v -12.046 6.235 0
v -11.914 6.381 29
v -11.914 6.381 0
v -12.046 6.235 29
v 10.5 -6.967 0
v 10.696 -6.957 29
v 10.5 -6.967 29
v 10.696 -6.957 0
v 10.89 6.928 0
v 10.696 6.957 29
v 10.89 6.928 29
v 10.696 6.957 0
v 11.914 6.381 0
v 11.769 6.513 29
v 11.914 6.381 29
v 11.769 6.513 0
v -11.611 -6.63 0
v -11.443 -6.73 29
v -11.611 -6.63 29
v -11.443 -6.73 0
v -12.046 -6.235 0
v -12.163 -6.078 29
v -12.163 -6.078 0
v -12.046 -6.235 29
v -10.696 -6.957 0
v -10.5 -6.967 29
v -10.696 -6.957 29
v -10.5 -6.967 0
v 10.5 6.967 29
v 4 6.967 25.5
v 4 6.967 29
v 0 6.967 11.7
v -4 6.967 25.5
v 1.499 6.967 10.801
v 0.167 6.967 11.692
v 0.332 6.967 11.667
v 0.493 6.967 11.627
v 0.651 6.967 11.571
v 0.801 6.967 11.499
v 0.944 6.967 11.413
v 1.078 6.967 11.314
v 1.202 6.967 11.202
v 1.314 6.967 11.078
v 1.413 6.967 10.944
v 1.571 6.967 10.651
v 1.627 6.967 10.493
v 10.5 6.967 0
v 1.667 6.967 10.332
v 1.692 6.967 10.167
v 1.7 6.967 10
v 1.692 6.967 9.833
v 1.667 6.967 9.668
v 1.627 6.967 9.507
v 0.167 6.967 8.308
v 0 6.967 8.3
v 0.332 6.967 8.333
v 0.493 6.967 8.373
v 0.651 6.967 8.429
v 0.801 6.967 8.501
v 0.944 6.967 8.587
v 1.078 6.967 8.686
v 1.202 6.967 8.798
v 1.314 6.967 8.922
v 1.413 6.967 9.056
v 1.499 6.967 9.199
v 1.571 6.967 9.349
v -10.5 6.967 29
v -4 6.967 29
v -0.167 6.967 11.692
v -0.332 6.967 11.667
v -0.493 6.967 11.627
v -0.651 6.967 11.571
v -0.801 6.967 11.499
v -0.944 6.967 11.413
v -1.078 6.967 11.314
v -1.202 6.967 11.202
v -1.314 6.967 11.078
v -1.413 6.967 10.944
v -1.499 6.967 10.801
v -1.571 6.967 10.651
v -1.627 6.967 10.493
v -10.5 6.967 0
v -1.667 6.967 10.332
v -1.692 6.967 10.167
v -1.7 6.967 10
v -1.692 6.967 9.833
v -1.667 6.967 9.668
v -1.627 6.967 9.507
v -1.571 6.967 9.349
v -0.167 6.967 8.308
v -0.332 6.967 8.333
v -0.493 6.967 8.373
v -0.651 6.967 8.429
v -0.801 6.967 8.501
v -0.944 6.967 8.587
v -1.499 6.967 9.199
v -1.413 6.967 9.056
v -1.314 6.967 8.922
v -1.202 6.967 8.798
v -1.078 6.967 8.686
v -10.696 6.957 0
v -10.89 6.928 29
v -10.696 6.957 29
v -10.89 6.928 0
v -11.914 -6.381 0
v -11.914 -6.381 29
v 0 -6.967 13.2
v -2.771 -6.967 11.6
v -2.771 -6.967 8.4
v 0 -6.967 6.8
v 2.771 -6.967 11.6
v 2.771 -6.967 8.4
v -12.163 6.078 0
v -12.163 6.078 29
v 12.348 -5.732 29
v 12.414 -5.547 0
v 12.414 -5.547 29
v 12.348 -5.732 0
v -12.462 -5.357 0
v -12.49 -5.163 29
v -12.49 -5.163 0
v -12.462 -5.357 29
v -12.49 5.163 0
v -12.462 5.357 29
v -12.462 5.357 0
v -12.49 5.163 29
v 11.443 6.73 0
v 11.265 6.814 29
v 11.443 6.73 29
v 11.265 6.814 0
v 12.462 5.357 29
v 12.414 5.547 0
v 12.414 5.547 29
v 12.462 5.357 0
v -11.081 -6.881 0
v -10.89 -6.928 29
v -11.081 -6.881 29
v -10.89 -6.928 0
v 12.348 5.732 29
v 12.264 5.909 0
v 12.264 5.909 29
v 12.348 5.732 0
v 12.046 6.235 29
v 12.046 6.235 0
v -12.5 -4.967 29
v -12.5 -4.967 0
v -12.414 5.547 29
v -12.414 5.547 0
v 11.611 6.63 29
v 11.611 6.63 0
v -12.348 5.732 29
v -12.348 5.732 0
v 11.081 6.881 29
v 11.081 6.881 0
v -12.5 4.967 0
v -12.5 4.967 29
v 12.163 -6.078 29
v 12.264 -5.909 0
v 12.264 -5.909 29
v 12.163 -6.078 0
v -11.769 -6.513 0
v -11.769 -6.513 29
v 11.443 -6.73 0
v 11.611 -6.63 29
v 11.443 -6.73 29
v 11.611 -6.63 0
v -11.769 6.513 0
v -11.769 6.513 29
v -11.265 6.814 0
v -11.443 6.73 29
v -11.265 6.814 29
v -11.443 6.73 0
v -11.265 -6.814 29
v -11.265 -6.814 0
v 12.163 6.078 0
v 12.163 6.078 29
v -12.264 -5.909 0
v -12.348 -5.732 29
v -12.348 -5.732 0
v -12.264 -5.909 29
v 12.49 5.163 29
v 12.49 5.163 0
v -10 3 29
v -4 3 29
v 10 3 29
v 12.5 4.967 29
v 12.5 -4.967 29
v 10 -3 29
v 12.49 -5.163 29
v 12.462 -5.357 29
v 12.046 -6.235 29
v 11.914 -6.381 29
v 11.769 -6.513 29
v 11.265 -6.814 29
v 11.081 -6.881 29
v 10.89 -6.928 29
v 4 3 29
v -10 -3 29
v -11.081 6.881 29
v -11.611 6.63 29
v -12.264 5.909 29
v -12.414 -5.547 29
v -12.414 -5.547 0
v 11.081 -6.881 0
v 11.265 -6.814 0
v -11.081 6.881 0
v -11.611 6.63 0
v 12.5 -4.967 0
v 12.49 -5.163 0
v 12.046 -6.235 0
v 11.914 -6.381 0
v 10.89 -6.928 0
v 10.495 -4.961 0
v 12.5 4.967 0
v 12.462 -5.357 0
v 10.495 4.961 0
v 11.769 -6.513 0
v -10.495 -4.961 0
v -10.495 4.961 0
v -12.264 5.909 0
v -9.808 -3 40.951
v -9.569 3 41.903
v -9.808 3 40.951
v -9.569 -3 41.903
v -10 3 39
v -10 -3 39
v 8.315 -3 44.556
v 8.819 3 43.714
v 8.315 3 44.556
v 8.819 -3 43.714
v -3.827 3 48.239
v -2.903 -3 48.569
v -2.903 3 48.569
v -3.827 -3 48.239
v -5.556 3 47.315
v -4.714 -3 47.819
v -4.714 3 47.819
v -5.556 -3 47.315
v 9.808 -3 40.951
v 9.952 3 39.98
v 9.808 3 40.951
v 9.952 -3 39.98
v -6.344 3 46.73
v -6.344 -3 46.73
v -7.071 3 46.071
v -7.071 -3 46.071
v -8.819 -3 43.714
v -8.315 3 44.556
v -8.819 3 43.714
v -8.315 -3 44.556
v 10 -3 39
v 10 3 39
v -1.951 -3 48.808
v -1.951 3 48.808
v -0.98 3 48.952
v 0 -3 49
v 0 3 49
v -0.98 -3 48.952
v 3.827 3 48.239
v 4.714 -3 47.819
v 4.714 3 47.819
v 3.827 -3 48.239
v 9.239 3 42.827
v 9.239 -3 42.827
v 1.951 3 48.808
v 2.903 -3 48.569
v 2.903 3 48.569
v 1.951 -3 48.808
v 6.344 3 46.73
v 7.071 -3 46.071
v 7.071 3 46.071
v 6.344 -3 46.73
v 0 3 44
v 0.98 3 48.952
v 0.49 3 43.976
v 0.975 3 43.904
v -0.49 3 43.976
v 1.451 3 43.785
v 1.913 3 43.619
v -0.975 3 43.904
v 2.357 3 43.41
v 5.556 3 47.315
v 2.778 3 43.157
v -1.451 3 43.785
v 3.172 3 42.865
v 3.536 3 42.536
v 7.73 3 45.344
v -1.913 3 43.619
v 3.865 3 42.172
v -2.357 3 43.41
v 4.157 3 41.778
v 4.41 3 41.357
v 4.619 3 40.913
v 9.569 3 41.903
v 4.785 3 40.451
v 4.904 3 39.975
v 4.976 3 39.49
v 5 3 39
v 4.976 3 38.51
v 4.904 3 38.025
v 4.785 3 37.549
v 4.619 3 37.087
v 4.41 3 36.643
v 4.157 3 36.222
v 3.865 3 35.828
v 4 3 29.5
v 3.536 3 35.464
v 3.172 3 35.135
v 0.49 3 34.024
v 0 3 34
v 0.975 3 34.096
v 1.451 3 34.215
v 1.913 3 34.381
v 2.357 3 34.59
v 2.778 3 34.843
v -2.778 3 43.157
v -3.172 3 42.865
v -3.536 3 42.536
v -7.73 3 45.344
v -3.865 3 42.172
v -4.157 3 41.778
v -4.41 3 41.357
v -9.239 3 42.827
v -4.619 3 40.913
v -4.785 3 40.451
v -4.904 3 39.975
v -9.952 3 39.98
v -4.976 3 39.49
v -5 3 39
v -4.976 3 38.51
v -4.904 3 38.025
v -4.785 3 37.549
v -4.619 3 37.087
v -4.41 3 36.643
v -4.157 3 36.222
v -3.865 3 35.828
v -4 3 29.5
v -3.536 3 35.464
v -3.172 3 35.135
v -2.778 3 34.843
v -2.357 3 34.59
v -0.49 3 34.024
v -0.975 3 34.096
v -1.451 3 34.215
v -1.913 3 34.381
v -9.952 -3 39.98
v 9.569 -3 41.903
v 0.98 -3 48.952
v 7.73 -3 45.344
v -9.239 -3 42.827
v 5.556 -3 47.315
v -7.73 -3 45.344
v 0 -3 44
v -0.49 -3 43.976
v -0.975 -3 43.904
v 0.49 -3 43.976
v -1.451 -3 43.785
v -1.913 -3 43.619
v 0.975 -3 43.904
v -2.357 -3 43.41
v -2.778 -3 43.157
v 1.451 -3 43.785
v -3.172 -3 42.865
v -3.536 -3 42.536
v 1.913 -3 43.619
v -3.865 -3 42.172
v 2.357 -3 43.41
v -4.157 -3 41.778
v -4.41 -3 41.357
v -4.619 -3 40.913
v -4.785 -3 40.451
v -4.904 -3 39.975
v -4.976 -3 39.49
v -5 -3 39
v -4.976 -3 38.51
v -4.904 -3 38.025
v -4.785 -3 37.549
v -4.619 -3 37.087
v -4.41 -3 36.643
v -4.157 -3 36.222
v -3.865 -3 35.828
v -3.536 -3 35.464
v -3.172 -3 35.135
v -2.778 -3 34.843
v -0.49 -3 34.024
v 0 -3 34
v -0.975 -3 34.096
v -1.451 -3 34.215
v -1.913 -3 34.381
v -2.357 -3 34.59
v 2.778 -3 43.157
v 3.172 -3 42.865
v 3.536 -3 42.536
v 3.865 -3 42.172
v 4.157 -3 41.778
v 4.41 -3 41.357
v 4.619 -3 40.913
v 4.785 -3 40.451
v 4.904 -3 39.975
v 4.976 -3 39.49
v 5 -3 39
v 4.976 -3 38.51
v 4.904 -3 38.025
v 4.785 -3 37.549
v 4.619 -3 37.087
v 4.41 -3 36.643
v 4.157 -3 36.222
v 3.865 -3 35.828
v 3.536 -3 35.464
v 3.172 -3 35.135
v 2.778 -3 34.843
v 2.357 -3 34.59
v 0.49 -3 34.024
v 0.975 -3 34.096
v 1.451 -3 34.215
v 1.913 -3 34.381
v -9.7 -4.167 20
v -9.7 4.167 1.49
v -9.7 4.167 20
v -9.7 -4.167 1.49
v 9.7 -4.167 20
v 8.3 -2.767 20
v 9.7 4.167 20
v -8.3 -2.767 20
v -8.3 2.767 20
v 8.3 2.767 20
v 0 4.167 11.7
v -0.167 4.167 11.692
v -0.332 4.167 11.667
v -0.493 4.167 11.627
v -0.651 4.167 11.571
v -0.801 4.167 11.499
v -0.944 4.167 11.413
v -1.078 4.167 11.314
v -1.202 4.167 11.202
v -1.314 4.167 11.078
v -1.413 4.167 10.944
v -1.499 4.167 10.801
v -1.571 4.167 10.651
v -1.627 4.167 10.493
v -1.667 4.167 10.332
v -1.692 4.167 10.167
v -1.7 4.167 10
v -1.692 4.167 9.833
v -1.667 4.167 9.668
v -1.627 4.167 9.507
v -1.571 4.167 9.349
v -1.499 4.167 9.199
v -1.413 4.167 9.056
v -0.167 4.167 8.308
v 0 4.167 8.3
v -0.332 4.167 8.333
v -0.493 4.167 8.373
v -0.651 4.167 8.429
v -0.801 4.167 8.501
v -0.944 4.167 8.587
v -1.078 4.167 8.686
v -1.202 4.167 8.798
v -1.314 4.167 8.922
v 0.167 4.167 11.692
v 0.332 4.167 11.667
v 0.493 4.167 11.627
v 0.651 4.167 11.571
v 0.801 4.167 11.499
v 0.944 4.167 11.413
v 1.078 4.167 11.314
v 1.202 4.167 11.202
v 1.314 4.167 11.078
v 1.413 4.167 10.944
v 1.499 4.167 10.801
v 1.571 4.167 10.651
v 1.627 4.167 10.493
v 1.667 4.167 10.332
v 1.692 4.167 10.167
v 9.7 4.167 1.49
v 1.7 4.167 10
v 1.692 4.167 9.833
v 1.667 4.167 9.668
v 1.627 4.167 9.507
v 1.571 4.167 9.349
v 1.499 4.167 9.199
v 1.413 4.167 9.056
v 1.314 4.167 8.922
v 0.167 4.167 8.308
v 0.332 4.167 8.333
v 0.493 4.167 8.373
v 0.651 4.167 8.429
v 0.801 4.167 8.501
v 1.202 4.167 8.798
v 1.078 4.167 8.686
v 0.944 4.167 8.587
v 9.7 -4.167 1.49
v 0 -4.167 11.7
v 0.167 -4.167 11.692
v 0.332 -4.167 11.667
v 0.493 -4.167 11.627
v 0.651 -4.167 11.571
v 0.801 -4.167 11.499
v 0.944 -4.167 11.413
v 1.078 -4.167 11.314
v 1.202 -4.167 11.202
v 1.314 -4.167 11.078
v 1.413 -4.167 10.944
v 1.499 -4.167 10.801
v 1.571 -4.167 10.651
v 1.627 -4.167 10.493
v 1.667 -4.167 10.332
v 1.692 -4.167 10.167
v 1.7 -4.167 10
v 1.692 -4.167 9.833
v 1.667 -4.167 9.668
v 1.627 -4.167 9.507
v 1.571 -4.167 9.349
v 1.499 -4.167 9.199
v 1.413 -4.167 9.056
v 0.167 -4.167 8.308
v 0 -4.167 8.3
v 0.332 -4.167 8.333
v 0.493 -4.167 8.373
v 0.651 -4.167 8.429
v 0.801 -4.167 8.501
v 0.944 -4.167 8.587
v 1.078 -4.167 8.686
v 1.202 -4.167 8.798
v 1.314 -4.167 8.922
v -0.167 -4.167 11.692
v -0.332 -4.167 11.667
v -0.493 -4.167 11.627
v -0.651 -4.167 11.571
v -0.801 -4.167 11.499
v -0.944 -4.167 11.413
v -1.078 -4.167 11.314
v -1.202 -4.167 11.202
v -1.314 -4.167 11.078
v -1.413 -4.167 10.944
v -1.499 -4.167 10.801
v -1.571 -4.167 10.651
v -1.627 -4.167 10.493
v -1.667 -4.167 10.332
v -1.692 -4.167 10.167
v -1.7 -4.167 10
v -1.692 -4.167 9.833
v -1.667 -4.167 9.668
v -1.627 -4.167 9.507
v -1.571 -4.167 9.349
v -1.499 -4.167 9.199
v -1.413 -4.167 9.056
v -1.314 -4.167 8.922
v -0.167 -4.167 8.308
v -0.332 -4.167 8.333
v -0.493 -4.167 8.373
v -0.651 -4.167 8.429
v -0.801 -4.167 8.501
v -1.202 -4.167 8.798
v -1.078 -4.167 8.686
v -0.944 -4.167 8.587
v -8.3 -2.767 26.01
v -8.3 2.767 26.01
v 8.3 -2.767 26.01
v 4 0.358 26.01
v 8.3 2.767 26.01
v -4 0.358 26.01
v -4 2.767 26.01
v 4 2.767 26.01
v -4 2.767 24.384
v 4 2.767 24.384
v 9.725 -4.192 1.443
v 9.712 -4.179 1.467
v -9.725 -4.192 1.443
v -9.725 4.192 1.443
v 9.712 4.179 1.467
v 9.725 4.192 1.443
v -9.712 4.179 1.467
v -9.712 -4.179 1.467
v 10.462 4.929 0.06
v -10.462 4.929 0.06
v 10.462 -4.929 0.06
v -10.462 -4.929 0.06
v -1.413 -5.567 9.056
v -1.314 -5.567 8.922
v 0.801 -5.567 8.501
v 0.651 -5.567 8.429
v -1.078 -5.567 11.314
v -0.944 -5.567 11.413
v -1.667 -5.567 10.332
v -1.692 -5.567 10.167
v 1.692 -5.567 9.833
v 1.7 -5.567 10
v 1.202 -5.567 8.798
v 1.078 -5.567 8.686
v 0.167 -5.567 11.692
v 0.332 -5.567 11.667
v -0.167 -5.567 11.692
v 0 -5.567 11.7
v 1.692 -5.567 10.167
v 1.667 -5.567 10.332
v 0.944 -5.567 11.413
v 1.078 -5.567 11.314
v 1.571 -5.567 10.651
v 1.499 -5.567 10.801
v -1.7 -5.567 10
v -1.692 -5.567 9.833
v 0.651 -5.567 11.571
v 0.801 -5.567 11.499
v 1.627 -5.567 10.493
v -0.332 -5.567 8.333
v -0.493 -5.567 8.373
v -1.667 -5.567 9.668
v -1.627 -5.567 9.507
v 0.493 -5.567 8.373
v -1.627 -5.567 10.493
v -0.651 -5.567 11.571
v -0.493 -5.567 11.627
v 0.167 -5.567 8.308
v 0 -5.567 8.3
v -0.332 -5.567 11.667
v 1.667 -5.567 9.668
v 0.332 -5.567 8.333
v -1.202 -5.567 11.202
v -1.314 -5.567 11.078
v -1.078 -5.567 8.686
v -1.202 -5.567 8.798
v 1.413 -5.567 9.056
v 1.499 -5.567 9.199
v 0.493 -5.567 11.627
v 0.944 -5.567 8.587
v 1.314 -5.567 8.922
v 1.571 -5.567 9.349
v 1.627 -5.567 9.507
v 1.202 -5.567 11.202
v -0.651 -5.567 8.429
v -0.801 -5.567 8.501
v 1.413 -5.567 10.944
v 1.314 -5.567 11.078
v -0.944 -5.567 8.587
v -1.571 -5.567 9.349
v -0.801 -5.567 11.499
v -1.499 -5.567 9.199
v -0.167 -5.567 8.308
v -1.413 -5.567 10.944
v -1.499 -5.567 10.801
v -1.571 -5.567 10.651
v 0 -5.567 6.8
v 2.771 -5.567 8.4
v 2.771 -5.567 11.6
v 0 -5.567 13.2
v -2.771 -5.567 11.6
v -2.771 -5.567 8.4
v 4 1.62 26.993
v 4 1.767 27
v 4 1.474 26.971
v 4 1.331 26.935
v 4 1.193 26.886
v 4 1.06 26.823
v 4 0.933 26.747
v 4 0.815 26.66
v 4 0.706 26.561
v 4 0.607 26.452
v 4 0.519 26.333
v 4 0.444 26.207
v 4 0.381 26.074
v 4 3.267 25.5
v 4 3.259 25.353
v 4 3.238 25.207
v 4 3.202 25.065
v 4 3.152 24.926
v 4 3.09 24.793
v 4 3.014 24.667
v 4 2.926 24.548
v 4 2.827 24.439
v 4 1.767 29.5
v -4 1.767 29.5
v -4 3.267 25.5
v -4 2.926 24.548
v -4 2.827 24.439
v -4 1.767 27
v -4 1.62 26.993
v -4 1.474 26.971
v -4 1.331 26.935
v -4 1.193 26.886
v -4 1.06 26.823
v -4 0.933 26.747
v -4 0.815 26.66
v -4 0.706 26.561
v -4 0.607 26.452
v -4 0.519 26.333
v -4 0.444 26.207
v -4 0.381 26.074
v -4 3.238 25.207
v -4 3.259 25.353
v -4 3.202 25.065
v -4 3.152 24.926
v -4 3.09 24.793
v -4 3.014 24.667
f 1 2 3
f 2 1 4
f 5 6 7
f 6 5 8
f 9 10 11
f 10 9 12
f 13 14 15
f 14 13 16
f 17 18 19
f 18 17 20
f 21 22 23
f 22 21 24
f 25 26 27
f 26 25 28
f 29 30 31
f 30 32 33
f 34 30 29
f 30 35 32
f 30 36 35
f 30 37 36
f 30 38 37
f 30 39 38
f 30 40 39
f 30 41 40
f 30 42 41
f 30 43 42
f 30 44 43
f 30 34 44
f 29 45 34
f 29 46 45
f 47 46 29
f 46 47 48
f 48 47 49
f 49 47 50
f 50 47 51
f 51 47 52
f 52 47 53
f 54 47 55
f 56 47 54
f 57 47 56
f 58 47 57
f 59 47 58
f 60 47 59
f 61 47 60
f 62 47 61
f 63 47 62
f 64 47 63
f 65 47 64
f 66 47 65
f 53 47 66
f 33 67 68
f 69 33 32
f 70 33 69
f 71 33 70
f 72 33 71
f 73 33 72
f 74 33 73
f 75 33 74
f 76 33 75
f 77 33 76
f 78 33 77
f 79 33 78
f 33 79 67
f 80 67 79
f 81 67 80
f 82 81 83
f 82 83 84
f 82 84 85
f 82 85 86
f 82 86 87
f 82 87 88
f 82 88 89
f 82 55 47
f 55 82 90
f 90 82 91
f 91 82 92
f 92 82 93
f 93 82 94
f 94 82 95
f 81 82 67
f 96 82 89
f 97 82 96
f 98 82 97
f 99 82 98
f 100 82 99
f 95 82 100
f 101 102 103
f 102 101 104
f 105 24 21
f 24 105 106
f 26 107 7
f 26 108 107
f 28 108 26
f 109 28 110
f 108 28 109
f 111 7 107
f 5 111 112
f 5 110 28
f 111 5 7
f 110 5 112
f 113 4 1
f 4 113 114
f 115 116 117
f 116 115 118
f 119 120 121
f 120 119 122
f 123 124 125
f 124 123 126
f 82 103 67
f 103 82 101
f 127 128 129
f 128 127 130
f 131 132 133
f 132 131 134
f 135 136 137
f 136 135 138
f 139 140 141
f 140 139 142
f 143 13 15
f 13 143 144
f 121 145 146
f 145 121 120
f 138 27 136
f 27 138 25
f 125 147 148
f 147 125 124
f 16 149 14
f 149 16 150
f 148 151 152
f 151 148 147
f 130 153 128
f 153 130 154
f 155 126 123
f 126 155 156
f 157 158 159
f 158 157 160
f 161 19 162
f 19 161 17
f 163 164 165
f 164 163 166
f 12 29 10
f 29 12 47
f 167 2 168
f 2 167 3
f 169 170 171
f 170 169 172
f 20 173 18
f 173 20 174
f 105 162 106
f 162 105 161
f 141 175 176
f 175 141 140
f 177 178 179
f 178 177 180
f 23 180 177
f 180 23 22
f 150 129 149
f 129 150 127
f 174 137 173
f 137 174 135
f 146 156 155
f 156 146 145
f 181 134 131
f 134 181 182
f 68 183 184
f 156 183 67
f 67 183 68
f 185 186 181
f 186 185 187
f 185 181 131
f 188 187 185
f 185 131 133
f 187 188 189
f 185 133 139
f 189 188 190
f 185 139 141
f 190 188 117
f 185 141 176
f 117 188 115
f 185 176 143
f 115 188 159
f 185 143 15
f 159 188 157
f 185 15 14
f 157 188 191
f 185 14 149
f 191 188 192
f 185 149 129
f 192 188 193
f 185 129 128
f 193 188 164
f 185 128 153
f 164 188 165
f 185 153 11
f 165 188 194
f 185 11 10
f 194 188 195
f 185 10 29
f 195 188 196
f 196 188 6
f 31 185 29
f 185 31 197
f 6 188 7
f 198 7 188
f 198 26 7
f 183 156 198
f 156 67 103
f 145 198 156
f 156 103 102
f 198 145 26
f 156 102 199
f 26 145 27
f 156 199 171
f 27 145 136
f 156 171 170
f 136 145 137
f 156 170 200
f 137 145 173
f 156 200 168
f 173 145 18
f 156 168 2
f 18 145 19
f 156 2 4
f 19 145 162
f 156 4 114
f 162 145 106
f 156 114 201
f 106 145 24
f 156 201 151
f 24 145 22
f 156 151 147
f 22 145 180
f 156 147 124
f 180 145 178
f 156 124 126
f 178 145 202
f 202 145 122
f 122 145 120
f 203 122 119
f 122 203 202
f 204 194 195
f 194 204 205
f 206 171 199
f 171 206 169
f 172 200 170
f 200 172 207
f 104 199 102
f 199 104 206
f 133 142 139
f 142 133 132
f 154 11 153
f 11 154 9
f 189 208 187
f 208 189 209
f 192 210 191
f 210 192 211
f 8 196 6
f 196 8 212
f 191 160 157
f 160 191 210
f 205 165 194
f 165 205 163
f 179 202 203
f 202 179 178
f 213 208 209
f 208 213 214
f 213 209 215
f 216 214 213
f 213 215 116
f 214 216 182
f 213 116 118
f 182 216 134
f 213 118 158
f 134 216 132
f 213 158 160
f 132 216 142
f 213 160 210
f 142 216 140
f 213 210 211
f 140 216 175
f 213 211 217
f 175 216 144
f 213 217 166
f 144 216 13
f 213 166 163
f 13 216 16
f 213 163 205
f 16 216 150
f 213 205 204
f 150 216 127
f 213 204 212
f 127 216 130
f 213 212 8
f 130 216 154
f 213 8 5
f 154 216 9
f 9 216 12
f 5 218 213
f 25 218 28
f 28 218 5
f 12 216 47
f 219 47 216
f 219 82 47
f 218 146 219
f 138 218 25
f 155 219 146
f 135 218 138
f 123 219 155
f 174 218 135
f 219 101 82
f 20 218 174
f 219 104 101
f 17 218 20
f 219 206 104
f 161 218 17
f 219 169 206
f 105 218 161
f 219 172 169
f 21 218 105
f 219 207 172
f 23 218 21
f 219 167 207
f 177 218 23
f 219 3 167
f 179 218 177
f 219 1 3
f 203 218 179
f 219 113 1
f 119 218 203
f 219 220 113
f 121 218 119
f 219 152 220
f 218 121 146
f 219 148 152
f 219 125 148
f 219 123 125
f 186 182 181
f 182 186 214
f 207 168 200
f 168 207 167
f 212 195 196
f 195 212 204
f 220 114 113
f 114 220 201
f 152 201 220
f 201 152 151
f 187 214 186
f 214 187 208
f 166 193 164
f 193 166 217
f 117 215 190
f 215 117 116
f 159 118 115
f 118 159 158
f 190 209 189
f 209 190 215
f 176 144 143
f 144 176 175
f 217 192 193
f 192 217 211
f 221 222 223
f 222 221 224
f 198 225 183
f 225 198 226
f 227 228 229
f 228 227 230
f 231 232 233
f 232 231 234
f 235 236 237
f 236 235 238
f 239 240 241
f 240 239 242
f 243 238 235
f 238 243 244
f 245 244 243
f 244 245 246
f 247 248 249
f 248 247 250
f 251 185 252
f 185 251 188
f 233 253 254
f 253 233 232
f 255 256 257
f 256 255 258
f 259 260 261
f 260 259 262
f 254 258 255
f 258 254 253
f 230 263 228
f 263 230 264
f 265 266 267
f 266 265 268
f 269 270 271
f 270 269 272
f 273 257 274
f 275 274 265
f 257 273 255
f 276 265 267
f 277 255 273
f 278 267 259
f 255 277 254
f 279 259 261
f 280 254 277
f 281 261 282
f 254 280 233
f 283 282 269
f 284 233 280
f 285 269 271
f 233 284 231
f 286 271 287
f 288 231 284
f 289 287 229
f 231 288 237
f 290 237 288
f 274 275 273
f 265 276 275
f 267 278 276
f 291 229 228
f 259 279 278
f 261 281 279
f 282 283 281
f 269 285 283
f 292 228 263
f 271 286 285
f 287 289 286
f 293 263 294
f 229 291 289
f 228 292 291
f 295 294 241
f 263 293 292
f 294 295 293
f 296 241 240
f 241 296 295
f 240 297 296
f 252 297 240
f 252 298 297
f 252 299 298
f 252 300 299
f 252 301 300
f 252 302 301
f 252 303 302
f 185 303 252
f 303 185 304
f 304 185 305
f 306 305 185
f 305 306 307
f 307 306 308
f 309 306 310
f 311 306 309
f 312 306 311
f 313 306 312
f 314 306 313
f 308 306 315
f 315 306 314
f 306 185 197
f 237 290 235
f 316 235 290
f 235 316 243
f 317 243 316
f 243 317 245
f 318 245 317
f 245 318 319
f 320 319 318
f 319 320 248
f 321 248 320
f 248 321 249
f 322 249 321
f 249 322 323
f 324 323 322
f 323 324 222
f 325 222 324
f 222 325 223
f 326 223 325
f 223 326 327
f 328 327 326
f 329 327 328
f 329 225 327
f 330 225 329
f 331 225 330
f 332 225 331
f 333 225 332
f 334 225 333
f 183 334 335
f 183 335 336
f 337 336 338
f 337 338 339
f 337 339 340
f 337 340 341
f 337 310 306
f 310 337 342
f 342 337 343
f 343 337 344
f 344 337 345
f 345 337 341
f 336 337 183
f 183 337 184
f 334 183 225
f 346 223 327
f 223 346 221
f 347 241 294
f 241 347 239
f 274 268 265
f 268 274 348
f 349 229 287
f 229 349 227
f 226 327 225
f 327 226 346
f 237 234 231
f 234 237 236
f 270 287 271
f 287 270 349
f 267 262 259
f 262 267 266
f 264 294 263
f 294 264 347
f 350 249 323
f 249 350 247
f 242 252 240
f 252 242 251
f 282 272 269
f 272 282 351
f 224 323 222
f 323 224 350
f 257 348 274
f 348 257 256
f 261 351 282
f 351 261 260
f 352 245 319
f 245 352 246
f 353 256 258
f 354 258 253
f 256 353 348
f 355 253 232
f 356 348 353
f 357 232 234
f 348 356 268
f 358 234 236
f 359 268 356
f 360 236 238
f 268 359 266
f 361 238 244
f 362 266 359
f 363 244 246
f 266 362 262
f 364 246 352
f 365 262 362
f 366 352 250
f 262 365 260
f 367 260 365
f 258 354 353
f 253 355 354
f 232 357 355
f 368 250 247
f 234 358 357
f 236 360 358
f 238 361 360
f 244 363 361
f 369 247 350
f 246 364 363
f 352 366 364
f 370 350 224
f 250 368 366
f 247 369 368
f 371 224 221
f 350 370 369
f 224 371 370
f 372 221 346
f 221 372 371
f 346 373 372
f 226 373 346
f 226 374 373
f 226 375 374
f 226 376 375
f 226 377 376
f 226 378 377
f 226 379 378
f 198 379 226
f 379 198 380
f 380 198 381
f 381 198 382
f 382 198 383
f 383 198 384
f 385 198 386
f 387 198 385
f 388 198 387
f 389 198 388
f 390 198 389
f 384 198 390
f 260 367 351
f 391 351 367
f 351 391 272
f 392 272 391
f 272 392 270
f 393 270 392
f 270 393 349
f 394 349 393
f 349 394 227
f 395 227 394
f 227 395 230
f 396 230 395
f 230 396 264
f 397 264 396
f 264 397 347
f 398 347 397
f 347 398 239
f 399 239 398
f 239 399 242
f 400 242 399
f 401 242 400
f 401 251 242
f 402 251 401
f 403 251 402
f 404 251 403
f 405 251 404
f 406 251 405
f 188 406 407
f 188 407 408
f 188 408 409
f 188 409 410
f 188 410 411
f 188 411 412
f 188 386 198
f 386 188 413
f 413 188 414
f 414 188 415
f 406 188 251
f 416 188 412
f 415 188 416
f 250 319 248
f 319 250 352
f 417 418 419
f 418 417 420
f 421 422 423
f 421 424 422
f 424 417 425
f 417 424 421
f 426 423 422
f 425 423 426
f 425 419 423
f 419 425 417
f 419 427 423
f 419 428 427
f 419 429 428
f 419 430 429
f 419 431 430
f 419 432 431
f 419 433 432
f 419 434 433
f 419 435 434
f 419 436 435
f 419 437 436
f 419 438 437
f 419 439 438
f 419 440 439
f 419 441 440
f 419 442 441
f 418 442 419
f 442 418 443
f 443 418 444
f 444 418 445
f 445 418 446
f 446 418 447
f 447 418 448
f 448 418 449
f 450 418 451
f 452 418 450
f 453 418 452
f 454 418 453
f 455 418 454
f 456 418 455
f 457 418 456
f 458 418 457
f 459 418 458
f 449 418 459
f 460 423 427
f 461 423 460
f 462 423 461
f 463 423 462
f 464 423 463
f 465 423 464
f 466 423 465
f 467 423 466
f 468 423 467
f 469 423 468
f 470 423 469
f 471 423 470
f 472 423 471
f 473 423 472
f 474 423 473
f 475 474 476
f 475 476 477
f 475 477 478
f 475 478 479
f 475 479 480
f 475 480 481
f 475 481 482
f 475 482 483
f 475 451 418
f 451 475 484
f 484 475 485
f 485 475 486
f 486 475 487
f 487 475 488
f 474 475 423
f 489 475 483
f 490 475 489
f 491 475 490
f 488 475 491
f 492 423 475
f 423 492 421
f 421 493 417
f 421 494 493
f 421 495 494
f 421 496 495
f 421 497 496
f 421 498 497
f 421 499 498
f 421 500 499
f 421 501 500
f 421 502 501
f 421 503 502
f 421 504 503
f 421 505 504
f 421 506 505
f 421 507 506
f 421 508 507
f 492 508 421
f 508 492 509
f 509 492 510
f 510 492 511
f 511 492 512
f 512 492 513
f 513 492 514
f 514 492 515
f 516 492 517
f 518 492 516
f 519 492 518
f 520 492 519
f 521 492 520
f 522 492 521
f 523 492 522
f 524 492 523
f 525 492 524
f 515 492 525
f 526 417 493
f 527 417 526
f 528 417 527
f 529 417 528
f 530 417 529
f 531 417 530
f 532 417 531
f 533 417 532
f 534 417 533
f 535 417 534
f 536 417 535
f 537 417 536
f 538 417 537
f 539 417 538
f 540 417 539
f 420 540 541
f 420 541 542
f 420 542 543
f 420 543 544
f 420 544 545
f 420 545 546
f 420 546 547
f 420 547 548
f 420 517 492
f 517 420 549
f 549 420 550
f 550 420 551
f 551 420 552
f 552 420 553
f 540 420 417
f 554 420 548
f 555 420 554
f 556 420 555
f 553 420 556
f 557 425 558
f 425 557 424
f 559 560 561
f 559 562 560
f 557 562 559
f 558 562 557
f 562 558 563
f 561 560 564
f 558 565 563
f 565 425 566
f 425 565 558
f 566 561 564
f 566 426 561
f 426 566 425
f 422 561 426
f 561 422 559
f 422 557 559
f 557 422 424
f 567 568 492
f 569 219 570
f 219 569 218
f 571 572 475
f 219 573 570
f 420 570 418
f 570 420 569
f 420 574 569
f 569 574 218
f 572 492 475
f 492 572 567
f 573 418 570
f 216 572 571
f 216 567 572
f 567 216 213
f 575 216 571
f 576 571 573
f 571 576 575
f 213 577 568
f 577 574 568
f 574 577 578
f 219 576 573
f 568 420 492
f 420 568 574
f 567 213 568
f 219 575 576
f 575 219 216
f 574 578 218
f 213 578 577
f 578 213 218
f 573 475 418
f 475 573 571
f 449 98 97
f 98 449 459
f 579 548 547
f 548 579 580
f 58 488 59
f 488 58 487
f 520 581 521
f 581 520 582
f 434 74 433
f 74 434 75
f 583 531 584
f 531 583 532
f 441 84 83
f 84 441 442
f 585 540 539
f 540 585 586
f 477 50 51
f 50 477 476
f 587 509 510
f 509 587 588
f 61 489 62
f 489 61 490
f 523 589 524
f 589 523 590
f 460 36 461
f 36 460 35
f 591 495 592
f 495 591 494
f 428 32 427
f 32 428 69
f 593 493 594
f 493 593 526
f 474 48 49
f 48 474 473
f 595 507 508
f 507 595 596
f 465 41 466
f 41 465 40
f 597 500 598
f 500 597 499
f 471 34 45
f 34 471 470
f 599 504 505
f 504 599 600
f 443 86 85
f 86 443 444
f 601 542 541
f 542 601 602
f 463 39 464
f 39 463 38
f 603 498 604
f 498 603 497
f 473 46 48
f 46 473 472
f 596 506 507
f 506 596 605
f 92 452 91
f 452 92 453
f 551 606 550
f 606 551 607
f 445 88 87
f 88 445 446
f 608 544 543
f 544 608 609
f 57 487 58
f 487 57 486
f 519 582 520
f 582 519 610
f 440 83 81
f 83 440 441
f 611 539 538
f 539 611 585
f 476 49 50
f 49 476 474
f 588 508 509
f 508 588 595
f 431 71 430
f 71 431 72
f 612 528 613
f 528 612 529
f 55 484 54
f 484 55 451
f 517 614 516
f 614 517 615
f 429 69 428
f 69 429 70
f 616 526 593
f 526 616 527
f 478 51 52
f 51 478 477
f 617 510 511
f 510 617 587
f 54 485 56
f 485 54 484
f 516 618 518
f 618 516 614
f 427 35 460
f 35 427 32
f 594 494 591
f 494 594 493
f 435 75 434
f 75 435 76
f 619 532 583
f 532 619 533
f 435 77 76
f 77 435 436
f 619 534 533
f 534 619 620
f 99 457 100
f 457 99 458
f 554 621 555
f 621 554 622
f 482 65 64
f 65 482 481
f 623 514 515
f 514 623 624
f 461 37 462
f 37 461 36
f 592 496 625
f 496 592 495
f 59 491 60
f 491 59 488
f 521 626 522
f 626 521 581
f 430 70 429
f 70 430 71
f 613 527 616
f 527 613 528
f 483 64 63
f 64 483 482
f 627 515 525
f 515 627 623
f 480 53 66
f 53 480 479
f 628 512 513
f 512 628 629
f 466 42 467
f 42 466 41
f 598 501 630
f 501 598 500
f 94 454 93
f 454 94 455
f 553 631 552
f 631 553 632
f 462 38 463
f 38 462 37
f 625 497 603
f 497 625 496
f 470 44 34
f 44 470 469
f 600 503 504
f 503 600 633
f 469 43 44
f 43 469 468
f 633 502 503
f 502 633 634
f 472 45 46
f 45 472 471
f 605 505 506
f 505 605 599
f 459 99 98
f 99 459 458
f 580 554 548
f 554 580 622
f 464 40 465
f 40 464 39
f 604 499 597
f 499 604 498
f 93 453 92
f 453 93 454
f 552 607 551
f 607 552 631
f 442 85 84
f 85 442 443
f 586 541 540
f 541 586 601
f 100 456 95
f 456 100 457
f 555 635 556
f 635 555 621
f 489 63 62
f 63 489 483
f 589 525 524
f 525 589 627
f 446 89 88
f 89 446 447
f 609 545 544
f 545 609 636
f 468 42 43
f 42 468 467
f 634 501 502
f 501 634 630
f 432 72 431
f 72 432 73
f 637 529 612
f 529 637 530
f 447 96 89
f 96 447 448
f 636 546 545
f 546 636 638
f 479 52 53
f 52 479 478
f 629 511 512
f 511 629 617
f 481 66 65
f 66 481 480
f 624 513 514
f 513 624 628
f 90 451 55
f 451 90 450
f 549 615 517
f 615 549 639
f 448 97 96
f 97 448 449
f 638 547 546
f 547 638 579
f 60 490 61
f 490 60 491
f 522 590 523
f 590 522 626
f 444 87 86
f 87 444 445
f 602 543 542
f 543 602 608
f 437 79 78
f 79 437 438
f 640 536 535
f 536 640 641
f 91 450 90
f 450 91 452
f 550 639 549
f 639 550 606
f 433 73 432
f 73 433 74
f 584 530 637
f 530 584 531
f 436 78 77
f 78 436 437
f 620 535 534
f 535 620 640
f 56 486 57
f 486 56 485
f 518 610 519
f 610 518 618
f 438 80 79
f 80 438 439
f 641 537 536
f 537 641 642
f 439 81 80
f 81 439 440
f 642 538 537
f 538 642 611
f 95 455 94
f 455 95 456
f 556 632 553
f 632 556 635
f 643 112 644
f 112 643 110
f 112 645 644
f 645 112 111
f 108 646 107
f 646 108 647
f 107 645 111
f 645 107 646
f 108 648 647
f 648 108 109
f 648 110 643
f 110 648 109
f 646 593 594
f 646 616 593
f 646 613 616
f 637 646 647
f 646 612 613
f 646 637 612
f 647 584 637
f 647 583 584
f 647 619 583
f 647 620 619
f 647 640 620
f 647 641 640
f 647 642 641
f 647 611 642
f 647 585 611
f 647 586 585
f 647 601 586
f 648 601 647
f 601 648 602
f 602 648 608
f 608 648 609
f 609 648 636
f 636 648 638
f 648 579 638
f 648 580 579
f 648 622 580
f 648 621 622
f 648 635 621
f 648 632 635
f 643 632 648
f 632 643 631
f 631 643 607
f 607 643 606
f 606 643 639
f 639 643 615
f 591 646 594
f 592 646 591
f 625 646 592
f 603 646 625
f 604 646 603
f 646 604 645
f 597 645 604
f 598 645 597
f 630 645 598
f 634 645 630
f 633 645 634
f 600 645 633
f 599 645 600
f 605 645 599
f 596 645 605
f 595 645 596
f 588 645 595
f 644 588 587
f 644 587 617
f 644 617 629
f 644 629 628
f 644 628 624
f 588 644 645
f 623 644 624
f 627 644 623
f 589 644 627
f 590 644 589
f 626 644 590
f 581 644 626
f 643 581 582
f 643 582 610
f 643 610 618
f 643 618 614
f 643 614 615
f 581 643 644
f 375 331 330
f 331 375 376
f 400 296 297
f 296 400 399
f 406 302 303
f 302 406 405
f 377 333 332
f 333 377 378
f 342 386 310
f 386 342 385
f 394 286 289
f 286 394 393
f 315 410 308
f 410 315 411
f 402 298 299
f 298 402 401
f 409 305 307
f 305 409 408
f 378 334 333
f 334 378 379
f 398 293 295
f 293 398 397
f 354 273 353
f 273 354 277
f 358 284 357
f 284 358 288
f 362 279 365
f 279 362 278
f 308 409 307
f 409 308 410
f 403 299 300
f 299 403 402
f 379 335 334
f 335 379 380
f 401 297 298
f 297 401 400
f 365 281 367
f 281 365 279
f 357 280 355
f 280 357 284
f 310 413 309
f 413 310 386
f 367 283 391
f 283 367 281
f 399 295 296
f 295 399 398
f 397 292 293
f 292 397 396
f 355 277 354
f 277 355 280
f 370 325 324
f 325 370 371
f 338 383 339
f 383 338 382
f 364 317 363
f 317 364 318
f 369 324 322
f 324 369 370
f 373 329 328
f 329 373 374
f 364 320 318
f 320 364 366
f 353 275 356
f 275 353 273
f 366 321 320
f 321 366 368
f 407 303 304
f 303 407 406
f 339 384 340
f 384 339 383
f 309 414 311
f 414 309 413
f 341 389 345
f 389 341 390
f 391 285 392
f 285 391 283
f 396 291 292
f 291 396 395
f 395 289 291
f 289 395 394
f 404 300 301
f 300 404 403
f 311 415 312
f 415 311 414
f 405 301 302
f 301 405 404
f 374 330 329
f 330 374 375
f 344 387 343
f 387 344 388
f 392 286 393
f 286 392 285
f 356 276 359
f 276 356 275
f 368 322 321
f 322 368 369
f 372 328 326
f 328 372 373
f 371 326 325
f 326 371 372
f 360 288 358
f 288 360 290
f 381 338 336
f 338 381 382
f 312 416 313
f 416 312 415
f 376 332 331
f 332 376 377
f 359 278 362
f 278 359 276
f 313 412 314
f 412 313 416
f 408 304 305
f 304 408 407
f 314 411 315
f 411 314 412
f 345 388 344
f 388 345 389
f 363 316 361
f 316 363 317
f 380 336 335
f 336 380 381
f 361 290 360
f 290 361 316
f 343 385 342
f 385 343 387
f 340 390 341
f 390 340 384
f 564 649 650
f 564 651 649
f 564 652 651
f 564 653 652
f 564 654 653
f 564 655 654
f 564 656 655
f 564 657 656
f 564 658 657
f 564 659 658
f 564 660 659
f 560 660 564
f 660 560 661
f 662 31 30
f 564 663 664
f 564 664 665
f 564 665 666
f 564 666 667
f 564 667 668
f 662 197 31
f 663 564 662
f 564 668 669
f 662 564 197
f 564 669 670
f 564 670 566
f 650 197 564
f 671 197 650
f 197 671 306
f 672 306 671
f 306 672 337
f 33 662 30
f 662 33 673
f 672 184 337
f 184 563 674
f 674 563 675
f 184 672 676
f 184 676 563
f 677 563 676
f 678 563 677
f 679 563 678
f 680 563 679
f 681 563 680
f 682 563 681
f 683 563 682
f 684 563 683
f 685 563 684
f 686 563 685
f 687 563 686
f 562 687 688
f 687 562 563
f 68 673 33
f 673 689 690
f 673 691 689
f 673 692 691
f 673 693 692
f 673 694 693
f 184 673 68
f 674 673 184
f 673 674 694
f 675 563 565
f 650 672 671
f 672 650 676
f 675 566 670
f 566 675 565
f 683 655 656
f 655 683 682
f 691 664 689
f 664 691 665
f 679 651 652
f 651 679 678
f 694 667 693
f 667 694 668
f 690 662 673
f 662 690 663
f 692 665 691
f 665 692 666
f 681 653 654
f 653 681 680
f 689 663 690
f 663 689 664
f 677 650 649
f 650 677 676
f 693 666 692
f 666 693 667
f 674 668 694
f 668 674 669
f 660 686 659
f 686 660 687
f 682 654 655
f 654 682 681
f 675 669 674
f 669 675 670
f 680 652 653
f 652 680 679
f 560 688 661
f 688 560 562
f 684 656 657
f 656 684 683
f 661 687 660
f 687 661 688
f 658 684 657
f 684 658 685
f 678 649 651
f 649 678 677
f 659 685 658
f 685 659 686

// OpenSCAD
// ==================================================
// Závěsná koncovka pro LED profil T-LED N14 — v2
// — profil visí svisle za jeden (horní) konec
// Vnější průřez N14 ~17.4 x 8 mm — PŘEMĚŘ ŠUPLEROU!
//
// ZMĚNY proti v1:
//  1) ZARÁŽKA (stopper) — profil nedojede až ke stropu.
//     Nad koncem profilu je teď kabelová KOMORA (mezera),
//     kde se kabel v klidu ohne. Hrana profilu už kabel
//     neskřípne.
//  2) VĚTŠÍ průchodka kabelu — stejná pozice jako ve v1
//     (skrz strop nahoře, otevřená do boku Y+), jen širší.
//
// Montáž: zasunout konec profilu do kapsy AŽ NA DORAZ,
// skrz boční díry vyvrtat 3 mm díru do hliníku a
// prostrčit šroub M3 s matkou (nese váhu napřímo).
// ==================================================

/* [Profil] */
profile_w = 17.4;    // šířka profilu (vnější)
profile_h = 8.0;     // výška/hloubka profilu (vnější)
clearance = 1;     // vůle na zasunutí

/* [Koncovka] */
insert_depth = 20;   // jak hluboko profil zajede (plná drážka) = po doraz
wall         = 2.8;  // tloušťka stěn kolem profilu
top_t        = 3.0;  // tloušťka stropu nad komorou

/* [Zarážka + kabelová komora] */
stop_ledge      = 1.4;  // přesah osazení dovnitř na každé straně (zastaví hliník)
cable_chamber_h = 6;    // mezera nad koncem profilu (odsadí hranu profilu od ohybu kabelu)

/* [Pojistný šroub M3 napříč] */
pin_d        = 3.4;  // díra na M3 (skrz obě stěny i profil)
pin_offset   = 10;   // vzdálenost osy šroubu od ústí kapsy

/* [Průchodka kabelu] */
cable_d      = 8.0;  // šířka/průměr drážky na kabel (v1 měla jen 5.0)

/* [Závěsné oko] */
eye_hole_d   = 10;    // díra v oku (hák / lanko / vrut do stropu)
eye_ring_w   = 5;    // šířka materiálu kolem díry
eye_t        = 6;    // tloušťka oka

$fn = 64;

// --- odvozené ---
slot_w   = profile_w + 2*clearance;
slot_h   = profile_h + 1/3 *clearance;
body_w   = slot_w + 2*wall;
body_h   = slot_h + 2*wall;
chamber_w = slot_w - 2*stop_ledge;   // světlost komory nad dorazem
chamber_h = slot_h - 2*stop_ledge;
body_len = insert_depth + cable_chamber_h + top_t;
eye_r_out = eye_hole_d/2 + eye_ring_w;

// ================= TĚLO =================
// Z = osa profilu (svislá), kapsa otevřená dolů (Z=0)
difference() {
    union() {
        // blok kolem kapsy, zaoblené rohy
        linear_extrude(body_len)
            offset(r=2) offset(delta=-2)
                square([body_w, body_h], center=true);

        // závěsné oko nahoře (deska s dírou, v rovině šířky profilu)
        translate([0, 0, body_len])
            rotate([90, 0, 0])
                linear_extrude(eye_t, center=true)
                    hull() {
                        translate([0, eye_r_out]) circle(r=eye_r_out);
                        translate([-eye_r_out, -0.5]) square([2*eye_r_out, 1]);
                    }
    }

    // ---- plná kapsa na profil (jen do hloubky zasunutí) ----
    translate([0, 0, -0.5])
        linear_extrude(insert_depth + 0.5)
            square([slot_w, slot_h], center=true);

    // ---- kabelová KOMORA nad dorazem (užší => vznikne osazení/zarážka) ----
    // profil dojede k osazení v Z = insert_depth a dál nemůže,
    // kabel pokračuje středem komory a ohne se v prostoru.
    translate([0, 0, insert_depth - 0.01])
        linear_extrude(cable_chamber_h + 0.02)
            square([chamber_w, chamber_h], center=true);

    // náběh u ústí kapsy (snazší zasunutí)
    translate([0, 0, -0.01])
        linear_extrude(1.5, scale=[slot_w/(slot_w+1.6), slot_h/(slot_h+1.6)])
            square([slot_w+1.6, slot_h+1.6], center=true);

    // díra na M3 napříč (skrz obě boční stěny, kolmo na šířku profilu)
    translate([0, 0, pin_offset])
        rotate([90, 0, 0])
            cylinder(d=pin_d, h=body_h + 2, center=true);

    // šestihranná kapsa na matku M3 z jedné strany (volitelné)
    translate([0, -(slot_h/2 + wall) + 1.4, pin_offset])
        rotate([90, 0, 0])
            rotate([0, 0, 30])
                cylinder(d=6.4, h=2.9, center=false, $fn=6);

    // díra v závěsném oku
    translate([0, 0, body_len + eye_r_out])
        rotate([90, 0, 0])
            cylinder(d=eye_hole_d, h=eye_t + 2, center=true);

    // ---- VĚTŠÍ průchodka kabelu (pozice jako v1) ----
    // drážka skrz strop, otevřená do boku (Y+): kabel se vloží
    // z boku, žádné provlékání konektoru. Jen širší než v1
    // (cable_d). Napojená shora na kabelovou komoru.
    translate([-cable_d/2, chamber_h/2 - 1, body_len - top_t - 0.5])
        cube([cable_d, body_h, top_t + 1]);

    // zaoblené dno drážky, ať se kabel neláme/neseká o hranu
    translate([0, chamber_h/2 - 1, body_len - top_t - 0.5])
        rotate([0, 90, 0])
            cylinder(d=3, h=cable_d, center=true);
}
